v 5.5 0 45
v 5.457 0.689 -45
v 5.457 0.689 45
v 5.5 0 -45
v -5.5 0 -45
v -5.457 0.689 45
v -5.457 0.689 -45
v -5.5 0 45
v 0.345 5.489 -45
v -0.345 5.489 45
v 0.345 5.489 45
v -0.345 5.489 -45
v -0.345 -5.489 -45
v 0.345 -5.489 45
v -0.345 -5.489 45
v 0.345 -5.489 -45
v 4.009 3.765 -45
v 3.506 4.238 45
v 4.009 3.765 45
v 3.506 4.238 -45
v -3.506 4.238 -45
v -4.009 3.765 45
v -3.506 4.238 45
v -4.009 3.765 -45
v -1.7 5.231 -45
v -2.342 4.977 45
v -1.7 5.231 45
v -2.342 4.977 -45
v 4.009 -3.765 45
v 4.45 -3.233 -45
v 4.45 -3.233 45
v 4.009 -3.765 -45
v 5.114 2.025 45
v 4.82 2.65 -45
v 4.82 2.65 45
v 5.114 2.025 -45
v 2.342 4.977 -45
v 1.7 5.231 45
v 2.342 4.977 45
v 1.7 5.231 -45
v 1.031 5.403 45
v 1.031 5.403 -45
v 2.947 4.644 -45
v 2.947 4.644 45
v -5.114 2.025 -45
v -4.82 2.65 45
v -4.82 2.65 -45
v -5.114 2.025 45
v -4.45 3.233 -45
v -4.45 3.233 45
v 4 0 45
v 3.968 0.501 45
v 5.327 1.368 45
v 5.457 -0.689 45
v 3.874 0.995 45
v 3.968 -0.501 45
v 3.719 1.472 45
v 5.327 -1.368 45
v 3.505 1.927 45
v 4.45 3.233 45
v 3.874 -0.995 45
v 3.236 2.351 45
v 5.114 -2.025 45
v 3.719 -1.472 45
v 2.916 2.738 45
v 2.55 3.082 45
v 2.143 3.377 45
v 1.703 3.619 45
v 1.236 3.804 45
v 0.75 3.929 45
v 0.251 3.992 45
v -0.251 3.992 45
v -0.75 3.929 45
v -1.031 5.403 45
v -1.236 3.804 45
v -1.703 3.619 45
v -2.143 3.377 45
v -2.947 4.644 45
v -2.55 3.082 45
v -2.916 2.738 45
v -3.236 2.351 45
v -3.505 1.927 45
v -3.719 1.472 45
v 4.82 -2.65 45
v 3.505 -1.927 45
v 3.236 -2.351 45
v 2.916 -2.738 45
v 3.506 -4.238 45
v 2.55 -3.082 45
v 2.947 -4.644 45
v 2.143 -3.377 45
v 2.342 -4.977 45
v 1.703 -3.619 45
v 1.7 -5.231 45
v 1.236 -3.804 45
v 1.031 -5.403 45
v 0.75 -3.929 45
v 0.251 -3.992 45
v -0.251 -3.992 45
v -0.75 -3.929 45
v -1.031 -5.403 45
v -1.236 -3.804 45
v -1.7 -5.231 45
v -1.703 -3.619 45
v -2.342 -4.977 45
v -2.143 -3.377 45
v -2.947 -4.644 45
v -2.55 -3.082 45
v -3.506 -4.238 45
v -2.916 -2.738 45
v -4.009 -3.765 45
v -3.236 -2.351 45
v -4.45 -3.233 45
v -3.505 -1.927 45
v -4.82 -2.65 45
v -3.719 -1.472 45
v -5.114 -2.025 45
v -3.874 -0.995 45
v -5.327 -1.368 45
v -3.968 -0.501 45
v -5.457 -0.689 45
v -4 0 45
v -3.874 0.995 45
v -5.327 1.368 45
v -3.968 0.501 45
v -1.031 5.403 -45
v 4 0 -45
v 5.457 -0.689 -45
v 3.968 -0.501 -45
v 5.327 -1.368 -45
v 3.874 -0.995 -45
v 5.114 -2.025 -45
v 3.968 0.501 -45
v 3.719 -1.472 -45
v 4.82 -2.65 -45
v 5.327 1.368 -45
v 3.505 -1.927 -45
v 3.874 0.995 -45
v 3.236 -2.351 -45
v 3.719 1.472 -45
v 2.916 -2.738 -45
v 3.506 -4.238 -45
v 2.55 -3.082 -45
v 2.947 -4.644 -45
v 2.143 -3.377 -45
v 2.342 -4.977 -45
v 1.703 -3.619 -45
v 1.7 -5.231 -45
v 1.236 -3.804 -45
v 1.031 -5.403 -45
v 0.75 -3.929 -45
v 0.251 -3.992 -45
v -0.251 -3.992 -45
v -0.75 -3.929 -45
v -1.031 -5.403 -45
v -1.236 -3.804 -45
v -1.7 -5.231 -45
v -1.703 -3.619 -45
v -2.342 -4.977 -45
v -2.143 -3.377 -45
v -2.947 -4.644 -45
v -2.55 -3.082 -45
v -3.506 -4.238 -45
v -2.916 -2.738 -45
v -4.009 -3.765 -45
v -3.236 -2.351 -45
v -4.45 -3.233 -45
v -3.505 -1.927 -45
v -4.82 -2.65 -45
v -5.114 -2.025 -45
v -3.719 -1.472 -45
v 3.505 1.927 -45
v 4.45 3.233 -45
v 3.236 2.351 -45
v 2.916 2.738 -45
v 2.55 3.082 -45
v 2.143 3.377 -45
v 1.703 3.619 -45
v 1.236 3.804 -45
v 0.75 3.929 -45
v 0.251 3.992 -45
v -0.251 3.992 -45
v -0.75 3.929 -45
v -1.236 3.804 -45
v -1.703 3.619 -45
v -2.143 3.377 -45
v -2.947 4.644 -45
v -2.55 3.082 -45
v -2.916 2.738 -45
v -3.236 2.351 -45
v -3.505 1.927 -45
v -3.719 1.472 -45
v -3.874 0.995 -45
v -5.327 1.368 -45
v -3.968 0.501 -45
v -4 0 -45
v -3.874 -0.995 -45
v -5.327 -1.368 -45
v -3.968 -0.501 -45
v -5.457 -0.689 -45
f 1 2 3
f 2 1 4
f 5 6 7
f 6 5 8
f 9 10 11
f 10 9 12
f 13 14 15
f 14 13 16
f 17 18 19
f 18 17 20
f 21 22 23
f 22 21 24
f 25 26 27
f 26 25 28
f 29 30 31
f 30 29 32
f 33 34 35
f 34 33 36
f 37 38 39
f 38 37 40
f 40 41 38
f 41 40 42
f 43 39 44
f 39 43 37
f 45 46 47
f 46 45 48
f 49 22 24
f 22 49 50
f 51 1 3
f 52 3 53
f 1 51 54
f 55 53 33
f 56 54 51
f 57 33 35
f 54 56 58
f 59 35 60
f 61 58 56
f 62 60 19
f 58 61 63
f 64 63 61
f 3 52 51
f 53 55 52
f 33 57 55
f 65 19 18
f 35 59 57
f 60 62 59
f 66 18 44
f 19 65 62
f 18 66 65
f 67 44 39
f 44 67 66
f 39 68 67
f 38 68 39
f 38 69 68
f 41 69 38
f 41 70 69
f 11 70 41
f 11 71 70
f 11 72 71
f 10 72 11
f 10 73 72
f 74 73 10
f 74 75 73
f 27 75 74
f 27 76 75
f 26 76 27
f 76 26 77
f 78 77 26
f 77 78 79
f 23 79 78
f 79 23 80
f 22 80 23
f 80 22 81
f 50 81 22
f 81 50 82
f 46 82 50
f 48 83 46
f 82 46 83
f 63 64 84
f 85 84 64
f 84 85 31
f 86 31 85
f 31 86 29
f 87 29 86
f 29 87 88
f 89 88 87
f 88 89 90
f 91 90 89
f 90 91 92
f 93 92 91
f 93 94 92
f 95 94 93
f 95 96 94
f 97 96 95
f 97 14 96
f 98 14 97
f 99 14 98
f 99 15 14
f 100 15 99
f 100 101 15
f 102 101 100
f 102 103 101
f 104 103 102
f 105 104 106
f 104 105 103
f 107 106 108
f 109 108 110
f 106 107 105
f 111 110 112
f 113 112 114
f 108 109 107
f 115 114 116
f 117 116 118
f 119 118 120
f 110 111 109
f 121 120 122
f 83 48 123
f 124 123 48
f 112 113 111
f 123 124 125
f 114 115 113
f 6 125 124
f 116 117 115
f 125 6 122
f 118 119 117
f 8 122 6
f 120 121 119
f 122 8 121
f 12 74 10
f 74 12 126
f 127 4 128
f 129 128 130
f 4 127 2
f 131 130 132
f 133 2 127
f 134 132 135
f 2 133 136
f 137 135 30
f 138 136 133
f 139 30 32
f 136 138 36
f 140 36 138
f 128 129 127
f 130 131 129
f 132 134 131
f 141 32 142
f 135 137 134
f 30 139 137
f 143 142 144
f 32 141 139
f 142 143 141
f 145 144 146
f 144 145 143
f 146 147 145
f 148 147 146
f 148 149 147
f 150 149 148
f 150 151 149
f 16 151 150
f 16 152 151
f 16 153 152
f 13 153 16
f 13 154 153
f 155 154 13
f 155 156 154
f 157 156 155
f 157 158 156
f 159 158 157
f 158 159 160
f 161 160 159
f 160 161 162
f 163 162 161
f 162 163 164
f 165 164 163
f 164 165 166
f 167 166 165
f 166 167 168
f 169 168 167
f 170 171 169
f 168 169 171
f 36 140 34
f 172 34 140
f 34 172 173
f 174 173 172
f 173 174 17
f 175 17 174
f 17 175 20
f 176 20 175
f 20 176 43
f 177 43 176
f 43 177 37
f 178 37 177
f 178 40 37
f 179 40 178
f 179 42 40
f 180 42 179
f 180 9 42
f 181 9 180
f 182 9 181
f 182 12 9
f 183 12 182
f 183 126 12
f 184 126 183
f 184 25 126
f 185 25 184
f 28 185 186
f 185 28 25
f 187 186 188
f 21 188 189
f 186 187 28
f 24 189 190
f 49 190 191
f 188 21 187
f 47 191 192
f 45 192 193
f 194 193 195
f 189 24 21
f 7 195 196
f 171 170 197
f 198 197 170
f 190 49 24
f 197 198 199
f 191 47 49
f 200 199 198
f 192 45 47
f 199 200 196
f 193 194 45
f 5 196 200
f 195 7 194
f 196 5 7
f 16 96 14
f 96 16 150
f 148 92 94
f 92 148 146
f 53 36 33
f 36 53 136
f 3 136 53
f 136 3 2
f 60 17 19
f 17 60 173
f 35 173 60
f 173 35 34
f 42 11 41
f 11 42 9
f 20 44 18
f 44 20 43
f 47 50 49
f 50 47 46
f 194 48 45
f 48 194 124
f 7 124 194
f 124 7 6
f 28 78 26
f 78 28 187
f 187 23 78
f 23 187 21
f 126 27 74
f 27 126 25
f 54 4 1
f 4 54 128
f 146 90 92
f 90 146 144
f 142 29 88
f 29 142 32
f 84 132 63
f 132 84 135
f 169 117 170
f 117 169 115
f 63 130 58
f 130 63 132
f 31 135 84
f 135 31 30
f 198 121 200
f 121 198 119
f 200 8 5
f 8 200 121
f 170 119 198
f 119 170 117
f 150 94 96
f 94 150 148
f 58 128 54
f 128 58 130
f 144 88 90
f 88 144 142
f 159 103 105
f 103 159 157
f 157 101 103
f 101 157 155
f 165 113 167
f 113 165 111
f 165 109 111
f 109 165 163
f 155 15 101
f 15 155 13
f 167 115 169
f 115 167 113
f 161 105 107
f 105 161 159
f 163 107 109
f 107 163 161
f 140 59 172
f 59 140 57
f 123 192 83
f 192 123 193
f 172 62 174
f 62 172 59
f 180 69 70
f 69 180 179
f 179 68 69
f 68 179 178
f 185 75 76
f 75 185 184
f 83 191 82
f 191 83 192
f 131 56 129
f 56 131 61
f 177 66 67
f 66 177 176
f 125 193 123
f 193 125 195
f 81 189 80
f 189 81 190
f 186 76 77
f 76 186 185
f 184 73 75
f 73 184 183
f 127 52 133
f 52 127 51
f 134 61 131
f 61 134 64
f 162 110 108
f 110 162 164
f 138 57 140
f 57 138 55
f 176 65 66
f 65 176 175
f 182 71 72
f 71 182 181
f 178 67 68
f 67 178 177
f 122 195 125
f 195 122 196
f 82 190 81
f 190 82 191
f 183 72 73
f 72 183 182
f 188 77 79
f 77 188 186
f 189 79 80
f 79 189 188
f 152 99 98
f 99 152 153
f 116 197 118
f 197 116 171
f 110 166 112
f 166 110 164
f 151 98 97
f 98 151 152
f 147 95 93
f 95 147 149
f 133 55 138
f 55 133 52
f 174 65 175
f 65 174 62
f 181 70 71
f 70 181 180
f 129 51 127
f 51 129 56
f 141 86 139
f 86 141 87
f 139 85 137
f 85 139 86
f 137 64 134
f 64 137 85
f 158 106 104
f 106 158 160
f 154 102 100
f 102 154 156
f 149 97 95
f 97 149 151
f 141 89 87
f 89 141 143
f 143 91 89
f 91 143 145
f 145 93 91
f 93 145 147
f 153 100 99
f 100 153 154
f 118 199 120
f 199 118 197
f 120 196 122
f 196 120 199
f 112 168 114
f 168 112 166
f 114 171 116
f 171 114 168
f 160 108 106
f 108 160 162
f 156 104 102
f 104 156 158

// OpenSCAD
$fn = 50;


difference() {
	union() {
		translate(v = [0, 0, -45.0000000000]) {
			cylinder(h = 90, r = 5.5000000000);
		}
	}
	union() {
		translate(v = [0, 0, -100.0000000000]) {
			cylinder(h = 200, r = 4.0000000000);
		}
	}
}
